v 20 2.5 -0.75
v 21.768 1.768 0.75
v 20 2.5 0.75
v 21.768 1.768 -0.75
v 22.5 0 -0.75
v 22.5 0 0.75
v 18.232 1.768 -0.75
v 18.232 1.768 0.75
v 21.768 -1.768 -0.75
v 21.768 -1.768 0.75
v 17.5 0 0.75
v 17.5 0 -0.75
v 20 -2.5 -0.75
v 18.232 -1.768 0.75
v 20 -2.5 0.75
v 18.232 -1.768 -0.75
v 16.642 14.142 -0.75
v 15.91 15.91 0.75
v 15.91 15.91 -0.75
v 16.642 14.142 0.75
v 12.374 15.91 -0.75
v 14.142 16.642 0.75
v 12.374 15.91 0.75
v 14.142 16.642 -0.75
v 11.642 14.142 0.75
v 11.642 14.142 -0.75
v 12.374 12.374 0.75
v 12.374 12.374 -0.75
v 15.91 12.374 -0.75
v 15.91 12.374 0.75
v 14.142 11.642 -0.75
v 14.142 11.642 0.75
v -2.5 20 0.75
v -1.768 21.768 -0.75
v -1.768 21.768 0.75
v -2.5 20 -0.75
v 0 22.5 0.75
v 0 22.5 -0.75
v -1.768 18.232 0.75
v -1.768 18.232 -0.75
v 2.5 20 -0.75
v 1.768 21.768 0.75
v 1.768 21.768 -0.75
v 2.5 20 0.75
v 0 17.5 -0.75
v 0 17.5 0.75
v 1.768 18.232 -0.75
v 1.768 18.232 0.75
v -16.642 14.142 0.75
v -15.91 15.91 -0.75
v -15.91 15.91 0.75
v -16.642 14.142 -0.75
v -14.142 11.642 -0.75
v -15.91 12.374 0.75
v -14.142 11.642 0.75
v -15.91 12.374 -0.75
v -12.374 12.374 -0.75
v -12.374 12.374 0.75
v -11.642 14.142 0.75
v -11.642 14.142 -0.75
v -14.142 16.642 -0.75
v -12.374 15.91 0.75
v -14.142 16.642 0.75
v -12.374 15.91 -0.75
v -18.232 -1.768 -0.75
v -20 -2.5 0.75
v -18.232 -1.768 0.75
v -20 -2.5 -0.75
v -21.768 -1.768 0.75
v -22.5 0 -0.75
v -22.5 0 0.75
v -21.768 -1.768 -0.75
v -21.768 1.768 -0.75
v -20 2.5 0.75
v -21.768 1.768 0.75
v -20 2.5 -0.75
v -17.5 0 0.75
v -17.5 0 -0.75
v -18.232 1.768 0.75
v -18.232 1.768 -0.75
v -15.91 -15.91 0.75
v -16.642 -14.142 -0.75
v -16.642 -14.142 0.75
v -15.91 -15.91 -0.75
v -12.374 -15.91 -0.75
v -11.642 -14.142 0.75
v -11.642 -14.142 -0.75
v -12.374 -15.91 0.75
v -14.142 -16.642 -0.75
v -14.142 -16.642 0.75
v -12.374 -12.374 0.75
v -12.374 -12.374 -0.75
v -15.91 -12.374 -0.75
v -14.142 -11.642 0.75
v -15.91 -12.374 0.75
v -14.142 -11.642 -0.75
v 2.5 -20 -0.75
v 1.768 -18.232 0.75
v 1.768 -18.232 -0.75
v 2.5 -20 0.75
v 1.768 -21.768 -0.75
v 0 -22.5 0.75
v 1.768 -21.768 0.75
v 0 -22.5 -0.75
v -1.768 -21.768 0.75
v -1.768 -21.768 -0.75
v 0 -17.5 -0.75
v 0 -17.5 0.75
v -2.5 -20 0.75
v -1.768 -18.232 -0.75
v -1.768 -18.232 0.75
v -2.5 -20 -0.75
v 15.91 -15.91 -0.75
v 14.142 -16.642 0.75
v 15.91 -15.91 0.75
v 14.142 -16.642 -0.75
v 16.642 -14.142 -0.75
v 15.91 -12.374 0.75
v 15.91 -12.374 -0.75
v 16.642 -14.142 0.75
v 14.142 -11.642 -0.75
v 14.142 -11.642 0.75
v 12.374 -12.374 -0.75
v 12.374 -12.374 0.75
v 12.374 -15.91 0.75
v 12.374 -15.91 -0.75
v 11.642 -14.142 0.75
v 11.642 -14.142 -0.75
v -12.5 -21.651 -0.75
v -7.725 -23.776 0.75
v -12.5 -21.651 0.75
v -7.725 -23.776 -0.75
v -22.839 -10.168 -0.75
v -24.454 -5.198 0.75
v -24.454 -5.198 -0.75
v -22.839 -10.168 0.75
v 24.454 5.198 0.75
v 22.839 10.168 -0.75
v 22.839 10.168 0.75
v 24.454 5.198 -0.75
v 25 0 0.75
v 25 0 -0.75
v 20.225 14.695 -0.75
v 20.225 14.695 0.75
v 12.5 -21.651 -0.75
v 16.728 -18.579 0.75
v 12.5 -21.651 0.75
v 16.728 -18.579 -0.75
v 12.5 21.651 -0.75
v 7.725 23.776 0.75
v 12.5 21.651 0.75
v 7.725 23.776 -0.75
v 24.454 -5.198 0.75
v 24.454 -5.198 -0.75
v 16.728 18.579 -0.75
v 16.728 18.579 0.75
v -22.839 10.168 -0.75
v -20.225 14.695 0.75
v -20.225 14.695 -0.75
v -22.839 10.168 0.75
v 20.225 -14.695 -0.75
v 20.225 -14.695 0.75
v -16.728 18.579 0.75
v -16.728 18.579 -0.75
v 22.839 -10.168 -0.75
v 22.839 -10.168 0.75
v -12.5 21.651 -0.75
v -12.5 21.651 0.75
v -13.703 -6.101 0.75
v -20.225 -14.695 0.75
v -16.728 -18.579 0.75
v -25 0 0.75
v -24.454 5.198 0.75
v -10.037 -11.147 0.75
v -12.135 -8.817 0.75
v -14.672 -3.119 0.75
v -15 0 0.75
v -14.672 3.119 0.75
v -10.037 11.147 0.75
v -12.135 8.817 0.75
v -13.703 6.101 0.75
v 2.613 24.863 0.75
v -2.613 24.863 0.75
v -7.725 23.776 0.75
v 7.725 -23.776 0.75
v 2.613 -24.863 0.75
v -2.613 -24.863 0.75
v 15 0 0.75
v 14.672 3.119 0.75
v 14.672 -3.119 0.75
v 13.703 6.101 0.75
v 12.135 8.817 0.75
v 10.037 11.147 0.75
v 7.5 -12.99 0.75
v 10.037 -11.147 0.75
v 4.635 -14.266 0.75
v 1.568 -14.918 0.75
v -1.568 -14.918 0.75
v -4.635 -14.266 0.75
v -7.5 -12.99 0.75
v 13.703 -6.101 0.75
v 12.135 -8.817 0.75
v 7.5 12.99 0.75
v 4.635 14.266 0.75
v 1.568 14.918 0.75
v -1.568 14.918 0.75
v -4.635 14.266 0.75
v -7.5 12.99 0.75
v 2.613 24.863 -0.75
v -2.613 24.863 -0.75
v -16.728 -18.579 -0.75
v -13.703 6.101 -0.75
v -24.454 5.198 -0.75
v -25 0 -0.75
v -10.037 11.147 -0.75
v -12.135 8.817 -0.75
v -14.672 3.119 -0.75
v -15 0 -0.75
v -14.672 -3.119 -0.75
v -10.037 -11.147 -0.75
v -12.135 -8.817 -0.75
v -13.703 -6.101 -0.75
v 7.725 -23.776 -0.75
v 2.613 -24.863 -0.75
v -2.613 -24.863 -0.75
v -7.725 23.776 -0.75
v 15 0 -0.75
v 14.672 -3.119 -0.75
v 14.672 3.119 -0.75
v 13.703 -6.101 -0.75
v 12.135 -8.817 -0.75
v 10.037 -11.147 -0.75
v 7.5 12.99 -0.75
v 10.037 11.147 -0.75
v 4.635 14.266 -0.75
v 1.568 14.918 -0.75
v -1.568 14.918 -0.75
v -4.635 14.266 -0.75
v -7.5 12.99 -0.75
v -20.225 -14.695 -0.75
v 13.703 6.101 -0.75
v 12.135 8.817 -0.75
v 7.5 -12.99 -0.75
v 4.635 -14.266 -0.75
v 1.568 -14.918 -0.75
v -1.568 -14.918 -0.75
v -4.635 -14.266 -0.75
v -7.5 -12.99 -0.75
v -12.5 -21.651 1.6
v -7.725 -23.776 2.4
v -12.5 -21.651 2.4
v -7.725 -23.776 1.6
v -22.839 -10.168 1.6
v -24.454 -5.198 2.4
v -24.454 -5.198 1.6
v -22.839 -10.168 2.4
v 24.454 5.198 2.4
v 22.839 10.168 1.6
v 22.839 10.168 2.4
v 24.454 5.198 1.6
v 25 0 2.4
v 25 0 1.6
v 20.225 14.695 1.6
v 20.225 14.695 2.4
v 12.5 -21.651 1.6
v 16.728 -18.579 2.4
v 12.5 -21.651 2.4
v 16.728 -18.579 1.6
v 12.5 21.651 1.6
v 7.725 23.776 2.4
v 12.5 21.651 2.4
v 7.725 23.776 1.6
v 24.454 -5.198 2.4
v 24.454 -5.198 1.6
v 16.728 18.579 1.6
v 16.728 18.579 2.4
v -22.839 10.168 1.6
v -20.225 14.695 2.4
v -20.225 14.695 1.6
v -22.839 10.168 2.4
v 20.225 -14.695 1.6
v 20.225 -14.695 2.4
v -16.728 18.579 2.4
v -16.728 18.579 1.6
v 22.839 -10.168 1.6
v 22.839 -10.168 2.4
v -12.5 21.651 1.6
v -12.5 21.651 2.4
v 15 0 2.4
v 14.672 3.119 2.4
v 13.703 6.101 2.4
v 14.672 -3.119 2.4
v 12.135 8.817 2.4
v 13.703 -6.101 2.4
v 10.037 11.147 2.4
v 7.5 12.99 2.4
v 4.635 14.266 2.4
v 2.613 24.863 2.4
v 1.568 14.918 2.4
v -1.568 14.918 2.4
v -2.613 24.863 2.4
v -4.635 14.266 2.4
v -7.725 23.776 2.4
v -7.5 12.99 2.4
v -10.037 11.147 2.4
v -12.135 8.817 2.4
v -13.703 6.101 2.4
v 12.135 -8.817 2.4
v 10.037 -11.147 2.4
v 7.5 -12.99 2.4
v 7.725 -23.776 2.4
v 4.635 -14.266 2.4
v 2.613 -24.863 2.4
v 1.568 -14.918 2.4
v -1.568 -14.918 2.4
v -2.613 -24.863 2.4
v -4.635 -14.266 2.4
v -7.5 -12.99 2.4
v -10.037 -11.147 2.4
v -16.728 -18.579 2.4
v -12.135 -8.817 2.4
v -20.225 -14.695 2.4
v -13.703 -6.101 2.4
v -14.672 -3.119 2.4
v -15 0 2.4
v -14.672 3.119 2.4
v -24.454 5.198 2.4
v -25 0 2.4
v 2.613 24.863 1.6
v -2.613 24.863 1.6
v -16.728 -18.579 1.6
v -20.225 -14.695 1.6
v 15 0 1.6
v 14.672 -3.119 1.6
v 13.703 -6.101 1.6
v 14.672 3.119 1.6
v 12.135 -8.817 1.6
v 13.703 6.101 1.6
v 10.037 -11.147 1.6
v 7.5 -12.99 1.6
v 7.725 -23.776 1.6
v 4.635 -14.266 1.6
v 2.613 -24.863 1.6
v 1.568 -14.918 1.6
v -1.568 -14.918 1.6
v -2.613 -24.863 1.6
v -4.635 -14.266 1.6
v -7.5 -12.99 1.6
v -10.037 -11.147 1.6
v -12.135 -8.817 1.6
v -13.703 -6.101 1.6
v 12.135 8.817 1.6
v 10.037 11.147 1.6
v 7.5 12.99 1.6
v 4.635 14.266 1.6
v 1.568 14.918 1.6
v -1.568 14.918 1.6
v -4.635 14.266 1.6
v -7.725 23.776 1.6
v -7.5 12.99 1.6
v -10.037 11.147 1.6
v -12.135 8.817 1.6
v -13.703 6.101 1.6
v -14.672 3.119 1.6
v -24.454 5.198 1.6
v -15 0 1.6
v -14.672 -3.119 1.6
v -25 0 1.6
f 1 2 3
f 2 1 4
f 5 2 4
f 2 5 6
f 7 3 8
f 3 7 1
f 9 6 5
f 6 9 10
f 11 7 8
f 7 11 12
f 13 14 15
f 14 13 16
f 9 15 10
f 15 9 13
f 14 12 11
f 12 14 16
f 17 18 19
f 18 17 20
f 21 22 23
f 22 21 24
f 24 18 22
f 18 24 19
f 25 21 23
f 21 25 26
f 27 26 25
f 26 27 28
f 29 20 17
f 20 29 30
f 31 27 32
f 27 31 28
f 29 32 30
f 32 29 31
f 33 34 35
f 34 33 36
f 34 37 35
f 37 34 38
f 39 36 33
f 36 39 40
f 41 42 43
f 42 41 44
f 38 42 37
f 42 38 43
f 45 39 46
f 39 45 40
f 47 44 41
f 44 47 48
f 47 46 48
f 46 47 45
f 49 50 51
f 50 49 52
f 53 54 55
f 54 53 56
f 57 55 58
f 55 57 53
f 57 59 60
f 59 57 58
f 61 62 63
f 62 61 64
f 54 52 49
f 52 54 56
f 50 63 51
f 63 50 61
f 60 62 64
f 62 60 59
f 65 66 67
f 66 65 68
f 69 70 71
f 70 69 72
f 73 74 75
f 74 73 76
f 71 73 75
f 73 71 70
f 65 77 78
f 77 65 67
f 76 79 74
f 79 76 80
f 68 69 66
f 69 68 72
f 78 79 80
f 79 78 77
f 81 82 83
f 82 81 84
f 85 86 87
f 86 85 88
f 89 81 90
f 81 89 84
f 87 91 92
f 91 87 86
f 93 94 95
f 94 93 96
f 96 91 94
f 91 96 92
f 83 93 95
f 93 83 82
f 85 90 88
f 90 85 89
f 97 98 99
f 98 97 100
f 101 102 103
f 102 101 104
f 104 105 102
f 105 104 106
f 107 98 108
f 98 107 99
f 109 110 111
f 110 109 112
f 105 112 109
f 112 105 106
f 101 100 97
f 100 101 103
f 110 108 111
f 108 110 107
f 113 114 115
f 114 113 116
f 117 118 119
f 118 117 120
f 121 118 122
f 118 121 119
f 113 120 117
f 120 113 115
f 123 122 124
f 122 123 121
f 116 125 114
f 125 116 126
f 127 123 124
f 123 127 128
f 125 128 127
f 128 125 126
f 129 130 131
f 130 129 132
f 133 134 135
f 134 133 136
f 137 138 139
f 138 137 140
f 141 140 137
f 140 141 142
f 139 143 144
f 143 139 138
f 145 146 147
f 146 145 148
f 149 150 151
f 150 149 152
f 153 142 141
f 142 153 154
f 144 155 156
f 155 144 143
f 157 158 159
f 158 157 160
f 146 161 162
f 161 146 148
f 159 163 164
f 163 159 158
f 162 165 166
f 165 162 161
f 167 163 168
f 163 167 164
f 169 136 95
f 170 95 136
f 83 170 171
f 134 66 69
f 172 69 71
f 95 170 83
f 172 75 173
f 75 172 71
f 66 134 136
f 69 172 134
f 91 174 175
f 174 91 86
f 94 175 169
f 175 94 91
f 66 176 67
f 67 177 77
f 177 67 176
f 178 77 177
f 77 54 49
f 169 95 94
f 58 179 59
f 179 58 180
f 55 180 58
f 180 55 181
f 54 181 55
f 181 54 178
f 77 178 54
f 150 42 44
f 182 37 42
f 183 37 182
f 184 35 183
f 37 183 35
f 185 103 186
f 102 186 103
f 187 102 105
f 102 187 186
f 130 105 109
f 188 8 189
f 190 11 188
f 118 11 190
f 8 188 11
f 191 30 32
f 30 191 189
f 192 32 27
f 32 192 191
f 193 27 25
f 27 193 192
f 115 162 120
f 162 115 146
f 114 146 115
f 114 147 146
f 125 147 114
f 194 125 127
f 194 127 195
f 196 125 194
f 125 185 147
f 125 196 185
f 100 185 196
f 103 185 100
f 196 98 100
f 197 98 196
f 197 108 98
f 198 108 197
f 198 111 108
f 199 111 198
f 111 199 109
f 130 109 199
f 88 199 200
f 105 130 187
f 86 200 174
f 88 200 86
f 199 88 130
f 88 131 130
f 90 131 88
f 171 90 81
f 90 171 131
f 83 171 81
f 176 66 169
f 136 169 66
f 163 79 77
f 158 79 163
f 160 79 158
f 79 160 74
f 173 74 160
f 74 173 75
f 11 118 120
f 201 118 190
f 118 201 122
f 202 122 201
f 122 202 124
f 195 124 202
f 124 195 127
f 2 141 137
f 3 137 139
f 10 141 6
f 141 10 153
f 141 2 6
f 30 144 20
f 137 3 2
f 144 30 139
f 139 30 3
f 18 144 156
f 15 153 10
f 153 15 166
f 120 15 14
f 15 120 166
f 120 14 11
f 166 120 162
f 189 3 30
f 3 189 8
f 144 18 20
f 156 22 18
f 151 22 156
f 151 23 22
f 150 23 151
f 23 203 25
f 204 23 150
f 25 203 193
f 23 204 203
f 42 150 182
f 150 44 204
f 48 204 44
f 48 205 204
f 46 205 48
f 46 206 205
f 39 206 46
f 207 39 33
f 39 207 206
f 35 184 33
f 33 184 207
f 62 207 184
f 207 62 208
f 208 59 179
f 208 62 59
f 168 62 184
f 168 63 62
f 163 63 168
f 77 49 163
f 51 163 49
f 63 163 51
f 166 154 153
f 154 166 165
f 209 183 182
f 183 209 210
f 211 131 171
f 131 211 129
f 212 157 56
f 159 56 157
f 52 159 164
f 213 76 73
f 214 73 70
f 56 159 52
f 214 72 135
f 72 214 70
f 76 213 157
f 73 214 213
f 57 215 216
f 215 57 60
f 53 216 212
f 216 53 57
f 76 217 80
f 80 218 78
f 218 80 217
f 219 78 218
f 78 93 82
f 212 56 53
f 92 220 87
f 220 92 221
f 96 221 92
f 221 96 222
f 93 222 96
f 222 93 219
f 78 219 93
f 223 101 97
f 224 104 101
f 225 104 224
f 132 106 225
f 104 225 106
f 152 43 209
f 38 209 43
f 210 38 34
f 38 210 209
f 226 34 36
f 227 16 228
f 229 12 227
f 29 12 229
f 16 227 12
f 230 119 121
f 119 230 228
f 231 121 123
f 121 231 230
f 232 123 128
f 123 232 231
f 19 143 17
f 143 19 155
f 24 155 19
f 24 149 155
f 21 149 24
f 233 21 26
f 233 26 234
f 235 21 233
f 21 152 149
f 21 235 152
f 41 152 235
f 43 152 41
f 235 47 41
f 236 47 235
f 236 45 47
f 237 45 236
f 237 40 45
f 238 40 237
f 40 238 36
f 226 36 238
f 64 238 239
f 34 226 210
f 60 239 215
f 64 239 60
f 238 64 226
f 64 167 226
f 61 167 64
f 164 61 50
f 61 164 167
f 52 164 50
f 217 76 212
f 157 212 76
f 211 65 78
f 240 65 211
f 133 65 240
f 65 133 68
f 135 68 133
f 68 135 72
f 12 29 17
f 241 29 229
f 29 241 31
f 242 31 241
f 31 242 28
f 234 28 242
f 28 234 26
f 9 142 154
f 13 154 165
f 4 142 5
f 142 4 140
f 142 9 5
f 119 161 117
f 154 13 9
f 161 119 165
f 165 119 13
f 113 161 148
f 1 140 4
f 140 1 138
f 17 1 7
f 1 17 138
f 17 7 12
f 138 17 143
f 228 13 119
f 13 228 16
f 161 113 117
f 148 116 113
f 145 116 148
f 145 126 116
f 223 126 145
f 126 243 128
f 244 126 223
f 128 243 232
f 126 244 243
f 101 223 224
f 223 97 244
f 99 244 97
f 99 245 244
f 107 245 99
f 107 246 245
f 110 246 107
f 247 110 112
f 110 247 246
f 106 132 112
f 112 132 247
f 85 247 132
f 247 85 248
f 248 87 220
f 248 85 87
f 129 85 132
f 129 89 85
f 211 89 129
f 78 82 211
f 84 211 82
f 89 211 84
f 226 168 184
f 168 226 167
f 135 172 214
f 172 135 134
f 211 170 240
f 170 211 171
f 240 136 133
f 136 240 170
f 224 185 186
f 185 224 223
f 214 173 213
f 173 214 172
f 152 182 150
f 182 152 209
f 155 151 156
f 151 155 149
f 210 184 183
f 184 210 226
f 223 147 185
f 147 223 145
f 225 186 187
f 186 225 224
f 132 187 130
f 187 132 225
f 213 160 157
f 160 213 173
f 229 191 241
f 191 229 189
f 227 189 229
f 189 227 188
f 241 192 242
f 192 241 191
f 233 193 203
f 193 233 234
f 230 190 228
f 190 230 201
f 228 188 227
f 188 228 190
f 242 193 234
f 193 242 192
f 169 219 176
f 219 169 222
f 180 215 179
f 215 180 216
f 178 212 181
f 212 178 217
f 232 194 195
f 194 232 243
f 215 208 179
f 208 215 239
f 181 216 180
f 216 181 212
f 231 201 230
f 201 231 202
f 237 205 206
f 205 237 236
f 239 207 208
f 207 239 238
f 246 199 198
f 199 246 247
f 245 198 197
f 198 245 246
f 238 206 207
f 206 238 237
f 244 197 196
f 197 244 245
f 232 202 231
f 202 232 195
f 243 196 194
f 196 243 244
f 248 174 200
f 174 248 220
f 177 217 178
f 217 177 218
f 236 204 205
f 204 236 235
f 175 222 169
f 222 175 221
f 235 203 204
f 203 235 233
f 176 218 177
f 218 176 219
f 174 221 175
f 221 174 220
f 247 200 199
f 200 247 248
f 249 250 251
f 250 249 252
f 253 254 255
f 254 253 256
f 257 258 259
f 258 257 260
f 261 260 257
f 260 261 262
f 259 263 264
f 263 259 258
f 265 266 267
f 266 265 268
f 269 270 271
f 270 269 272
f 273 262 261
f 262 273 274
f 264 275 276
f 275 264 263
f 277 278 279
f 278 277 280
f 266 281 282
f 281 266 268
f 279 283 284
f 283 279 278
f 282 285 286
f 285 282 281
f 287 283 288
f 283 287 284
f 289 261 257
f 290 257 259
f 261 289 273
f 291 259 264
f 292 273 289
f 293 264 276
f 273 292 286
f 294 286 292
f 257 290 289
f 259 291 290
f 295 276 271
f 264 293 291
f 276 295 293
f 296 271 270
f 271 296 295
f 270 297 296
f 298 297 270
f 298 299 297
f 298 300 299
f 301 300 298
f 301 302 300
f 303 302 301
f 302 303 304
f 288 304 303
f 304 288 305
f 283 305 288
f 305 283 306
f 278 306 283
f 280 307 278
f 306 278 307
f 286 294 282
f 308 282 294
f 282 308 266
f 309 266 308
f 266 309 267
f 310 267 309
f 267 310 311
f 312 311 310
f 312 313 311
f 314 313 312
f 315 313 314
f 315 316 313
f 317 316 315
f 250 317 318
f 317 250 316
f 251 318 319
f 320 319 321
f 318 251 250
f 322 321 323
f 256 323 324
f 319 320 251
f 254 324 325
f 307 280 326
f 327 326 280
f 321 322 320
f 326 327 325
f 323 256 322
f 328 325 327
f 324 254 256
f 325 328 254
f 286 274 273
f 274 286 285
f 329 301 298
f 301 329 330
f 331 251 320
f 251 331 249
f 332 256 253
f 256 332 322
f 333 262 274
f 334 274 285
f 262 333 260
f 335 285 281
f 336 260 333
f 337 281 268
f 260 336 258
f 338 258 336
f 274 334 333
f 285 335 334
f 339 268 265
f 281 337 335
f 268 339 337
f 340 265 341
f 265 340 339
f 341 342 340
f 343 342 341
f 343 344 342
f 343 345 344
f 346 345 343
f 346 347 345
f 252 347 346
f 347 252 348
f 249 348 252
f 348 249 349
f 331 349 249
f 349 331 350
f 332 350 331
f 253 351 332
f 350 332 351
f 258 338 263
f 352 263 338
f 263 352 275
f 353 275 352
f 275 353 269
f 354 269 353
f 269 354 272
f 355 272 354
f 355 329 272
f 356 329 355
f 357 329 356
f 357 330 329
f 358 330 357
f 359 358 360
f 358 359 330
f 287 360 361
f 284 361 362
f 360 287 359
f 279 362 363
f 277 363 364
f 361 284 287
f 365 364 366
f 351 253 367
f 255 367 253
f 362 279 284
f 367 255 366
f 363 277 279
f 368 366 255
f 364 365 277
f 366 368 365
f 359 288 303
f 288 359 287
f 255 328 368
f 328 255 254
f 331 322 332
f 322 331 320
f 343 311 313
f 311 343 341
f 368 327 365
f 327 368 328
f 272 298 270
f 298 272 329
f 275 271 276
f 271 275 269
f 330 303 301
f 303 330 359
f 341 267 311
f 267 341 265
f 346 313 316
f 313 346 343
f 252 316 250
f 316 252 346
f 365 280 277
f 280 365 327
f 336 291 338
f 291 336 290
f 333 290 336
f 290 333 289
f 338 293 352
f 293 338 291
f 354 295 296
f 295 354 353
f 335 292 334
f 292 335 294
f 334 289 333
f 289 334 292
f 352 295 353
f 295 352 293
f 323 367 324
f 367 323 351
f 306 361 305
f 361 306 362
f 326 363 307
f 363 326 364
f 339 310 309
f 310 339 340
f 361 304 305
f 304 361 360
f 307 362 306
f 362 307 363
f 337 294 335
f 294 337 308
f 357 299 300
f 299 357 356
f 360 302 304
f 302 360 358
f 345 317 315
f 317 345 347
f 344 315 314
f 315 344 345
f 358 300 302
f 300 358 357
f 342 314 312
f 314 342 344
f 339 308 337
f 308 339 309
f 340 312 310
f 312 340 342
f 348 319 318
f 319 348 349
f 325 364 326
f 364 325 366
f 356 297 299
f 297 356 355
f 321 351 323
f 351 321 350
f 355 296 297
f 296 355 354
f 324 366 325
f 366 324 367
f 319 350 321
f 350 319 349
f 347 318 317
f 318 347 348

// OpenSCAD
// Parameters for flange plate
plate_thickness = 1.5; // Adjusted thickness to match the original model
outer_diameter = 50; // Outer diameter of the flange plate
inner_diameter = 30; // Inner diameter of the central hole
bolt_hole_diameter = 5; // Diameter of the bolt holes
bolt_hole_count = 8; // Adjusted number of bolt holes to match the original model
bolt_hole_radius = 20; // Radius of the circle on which bolt holes are positioned

module flange_plate() {
    difference() {
        // Create the main plate
        cylinder(h = plate_thickness, d = outer_diameter, center = true);
        
        // Create the central hole
        cylinder(h = plate_thickness + 1, d = inner_diameter, center = true);
        
        // Create the bolt holes
        for (i = [0:bolt_hole_count-1]) {
            rotate([0, 0, i * 360 / bolt_hole_count])
                translate([bolt_hole_radius, 0, 0])
                cylinder(h = plate_thickness + 1, d = bolt_hole_diameter, center = true);
        }
    }
}

// Parameters for spacer ring
spacer_ring_thickness = 0.8; // Reduced thickness to match the flatter profile of the original model
spacer_ring_outer_diameter = 50; // Outer diameter of the spacer ring
spacer_ring_inner_diameter = 30; // Inner diameter of the spacer ring

module spacer_ring() {
    difference() {
        // Create the main ring
        cylinder(h = spacer_ring_thickness, d = spacer_ring_outer_diameter, center = true);
        
        // Create the central hole
        cylinder(h = spacer_ring_thickness + 1, d = spacer_ring_inner_diameter, center = true);
    }
}

// Render the flange plate and spacer ring
flange_plate();
translate([0, 0, plate_thickness + 0.5]) spacer_ring();
